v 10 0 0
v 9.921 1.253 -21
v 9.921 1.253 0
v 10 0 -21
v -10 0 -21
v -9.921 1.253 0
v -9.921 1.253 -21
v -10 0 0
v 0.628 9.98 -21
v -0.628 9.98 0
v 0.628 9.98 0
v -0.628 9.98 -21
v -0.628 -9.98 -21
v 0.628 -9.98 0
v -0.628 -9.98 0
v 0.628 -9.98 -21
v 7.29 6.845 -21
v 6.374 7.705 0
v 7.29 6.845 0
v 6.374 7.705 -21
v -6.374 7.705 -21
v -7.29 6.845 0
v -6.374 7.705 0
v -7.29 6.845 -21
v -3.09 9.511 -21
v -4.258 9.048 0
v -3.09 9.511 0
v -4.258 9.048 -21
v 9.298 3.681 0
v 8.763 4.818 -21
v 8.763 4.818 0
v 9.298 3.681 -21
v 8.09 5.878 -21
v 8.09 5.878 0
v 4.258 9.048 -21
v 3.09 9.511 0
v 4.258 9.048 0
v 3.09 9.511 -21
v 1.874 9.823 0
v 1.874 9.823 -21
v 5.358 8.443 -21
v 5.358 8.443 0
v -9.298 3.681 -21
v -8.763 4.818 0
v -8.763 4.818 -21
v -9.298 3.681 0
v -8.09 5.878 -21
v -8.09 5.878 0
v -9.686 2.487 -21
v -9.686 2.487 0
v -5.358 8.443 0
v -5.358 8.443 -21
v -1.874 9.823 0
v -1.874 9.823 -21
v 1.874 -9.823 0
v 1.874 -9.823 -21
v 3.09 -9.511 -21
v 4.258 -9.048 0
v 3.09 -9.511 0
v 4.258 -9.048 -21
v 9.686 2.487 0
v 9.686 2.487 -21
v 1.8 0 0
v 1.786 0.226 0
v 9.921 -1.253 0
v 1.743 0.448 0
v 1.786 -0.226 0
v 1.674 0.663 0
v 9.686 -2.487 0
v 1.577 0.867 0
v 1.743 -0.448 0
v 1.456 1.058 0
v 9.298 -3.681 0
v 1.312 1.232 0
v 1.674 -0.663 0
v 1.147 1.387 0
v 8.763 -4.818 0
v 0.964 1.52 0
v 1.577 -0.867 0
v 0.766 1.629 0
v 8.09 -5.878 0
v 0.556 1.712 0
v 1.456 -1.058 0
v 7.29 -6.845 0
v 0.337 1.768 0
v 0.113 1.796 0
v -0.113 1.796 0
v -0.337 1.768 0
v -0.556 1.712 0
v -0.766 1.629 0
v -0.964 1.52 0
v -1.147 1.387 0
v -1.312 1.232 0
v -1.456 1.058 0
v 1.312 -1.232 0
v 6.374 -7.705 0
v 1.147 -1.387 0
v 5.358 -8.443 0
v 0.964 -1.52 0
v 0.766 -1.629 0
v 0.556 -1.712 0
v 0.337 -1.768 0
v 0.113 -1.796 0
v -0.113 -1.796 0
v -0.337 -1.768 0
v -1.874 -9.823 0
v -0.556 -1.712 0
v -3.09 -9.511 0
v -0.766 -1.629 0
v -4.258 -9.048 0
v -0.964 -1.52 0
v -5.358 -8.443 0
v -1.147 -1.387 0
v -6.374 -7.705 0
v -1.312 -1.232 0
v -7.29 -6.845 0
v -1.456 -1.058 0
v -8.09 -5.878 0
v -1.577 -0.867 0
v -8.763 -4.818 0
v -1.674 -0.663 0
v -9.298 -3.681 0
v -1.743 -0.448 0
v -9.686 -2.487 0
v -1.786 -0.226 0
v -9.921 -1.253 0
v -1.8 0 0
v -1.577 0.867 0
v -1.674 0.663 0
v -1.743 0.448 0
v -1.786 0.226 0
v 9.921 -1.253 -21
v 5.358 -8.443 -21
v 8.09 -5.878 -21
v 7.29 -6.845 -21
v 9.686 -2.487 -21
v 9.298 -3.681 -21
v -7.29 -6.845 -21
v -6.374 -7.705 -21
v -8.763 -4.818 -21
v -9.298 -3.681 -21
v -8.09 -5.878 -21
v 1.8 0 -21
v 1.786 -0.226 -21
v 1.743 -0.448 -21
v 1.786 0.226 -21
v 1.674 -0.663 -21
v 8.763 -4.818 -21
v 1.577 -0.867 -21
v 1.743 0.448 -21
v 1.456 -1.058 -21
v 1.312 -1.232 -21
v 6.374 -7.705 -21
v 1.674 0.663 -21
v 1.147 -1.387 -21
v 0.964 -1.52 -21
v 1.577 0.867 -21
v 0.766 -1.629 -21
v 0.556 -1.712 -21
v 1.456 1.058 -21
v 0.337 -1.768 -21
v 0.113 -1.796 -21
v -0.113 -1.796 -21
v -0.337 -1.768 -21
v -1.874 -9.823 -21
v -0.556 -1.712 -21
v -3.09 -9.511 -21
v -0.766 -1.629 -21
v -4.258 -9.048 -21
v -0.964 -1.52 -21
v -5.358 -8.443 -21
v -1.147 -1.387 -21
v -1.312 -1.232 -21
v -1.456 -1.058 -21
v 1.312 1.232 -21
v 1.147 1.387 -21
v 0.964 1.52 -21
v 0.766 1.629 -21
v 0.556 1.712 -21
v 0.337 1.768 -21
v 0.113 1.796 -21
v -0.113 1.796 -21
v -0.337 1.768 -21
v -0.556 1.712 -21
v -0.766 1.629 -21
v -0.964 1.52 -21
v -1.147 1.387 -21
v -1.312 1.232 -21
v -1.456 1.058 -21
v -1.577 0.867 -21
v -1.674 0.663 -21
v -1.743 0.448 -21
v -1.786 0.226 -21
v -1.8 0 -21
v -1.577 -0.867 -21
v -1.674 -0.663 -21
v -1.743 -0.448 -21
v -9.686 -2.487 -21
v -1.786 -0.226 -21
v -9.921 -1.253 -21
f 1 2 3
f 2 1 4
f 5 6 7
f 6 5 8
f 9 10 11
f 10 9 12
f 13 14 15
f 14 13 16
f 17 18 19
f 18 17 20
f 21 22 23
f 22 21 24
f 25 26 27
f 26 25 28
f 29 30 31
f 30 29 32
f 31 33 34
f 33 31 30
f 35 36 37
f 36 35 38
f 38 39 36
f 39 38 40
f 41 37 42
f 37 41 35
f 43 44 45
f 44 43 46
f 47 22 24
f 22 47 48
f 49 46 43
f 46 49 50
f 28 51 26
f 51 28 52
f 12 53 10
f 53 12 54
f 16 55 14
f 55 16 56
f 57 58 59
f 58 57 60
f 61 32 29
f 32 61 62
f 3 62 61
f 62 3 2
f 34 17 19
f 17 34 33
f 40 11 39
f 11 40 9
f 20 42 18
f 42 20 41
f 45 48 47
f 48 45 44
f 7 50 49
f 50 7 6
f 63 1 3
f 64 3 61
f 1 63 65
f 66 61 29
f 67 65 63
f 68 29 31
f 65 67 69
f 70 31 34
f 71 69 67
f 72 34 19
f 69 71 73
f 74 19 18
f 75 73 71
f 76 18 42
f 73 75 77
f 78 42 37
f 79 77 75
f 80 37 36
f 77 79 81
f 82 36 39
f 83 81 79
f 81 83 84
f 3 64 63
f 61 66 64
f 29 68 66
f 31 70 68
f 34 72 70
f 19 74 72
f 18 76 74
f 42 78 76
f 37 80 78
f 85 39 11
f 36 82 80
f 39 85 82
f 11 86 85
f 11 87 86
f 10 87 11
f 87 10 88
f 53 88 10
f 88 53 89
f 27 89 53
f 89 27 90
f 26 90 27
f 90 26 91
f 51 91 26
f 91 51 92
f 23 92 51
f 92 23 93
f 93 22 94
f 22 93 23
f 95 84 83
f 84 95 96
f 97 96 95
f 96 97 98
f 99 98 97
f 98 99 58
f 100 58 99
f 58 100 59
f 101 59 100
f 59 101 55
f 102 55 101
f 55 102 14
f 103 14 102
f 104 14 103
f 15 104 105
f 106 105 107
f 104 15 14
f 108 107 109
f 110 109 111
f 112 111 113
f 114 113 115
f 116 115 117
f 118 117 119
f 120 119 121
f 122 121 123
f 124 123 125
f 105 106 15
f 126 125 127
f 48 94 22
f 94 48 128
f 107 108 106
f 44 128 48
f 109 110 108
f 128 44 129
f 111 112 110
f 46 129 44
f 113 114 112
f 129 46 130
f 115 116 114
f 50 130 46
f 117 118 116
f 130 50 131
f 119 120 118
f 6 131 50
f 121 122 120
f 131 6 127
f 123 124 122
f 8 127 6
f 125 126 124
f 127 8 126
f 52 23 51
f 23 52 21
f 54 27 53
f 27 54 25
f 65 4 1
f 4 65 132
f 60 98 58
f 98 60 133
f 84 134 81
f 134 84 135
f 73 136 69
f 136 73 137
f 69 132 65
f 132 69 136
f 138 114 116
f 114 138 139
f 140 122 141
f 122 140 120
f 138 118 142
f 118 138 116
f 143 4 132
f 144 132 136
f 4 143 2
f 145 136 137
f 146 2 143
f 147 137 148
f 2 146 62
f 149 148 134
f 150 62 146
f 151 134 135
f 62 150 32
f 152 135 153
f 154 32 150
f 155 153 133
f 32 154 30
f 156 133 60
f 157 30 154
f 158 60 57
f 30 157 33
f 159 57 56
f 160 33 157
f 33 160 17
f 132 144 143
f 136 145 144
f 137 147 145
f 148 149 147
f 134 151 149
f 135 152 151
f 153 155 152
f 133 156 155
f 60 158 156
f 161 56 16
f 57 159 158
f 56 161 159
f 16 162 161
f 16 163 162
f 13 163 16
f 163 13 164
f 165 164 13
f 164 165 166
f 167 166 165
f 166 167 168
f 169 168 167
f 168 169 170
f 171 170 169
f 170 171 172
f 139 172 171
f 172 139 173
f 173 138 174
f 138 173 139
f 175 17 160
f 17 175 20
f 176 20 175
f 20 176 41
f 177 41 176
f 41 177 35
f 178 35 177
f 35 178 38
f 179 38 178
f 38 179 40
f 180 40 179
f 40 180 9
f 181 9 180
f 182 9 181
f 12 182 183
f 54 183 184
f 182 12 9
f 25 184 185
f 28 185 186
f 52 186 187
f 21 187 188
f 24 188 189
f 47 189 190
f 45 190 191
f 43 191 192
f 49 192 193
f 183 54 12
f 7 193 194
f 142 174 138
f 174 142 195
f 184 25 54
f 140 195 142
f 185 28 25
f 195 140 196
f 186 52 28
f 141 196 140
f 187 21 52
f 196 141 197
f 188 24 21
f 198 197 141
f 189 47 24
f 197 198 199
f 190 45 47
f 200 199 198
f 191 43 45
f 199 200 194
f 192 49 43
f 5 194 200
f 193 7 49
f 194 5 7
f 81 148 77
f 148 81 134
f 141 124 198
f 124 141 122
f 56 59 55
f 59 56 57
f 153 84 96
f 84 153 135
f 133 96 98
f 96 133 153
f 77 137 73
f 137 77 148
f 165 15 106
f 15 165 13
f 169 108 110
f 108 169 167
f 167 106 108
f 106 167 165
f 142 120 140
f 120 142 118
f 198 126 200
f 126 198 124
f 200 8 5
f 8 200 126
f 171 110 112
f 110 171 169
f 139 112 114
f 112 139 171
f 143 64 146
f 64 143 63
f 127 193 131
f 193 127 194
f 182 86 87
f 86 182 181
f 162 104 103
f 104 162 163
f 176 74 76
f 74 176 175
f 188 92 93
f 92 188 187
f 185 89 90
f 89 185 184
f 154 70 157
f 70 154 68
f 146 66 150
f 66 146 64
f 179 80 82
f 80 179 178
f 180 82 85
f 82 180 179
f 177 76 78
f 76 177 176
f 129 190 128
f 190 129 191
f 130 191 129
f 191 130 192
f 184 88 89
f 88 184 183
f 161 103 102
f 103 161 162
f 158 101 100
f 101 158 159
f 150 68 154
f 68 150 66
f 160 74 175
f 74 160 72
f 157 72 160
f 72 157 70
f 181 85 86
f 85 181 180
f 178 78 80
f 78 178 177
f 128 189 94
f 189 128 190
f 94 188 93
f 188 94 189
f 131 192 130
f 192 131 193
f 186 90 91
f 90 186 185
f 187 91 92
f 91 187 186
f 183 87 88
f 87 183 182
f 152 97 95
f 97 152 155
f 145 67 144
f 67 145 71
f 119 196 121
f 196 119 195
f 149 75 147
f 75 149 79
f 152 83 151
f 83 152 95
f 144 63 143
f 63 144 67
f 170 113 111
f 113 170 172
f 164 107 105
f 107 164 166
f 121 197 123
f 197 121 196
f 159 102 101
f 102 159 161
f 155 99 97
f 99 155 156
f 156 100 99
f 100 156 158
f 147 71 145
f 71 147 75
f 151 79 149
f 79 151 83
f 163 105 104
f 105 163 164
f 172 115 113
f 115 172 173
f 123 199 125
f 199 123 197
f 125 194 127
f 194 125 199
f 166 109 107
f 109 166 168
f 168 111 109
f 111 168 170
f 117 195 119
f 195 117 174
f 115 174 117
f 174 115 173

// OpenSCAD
$fn = 50;


difference() {
	union() {
		translate(v = [0, 0, -21.0000000000]) {
			cylinder(h = 21, r = 10.0000000000);
		}
	}
	union() {
		#translate(v = [0, 0, -21]) {
			cylinder(h = 21, r = 1.8000000000);
		}
	}
}
